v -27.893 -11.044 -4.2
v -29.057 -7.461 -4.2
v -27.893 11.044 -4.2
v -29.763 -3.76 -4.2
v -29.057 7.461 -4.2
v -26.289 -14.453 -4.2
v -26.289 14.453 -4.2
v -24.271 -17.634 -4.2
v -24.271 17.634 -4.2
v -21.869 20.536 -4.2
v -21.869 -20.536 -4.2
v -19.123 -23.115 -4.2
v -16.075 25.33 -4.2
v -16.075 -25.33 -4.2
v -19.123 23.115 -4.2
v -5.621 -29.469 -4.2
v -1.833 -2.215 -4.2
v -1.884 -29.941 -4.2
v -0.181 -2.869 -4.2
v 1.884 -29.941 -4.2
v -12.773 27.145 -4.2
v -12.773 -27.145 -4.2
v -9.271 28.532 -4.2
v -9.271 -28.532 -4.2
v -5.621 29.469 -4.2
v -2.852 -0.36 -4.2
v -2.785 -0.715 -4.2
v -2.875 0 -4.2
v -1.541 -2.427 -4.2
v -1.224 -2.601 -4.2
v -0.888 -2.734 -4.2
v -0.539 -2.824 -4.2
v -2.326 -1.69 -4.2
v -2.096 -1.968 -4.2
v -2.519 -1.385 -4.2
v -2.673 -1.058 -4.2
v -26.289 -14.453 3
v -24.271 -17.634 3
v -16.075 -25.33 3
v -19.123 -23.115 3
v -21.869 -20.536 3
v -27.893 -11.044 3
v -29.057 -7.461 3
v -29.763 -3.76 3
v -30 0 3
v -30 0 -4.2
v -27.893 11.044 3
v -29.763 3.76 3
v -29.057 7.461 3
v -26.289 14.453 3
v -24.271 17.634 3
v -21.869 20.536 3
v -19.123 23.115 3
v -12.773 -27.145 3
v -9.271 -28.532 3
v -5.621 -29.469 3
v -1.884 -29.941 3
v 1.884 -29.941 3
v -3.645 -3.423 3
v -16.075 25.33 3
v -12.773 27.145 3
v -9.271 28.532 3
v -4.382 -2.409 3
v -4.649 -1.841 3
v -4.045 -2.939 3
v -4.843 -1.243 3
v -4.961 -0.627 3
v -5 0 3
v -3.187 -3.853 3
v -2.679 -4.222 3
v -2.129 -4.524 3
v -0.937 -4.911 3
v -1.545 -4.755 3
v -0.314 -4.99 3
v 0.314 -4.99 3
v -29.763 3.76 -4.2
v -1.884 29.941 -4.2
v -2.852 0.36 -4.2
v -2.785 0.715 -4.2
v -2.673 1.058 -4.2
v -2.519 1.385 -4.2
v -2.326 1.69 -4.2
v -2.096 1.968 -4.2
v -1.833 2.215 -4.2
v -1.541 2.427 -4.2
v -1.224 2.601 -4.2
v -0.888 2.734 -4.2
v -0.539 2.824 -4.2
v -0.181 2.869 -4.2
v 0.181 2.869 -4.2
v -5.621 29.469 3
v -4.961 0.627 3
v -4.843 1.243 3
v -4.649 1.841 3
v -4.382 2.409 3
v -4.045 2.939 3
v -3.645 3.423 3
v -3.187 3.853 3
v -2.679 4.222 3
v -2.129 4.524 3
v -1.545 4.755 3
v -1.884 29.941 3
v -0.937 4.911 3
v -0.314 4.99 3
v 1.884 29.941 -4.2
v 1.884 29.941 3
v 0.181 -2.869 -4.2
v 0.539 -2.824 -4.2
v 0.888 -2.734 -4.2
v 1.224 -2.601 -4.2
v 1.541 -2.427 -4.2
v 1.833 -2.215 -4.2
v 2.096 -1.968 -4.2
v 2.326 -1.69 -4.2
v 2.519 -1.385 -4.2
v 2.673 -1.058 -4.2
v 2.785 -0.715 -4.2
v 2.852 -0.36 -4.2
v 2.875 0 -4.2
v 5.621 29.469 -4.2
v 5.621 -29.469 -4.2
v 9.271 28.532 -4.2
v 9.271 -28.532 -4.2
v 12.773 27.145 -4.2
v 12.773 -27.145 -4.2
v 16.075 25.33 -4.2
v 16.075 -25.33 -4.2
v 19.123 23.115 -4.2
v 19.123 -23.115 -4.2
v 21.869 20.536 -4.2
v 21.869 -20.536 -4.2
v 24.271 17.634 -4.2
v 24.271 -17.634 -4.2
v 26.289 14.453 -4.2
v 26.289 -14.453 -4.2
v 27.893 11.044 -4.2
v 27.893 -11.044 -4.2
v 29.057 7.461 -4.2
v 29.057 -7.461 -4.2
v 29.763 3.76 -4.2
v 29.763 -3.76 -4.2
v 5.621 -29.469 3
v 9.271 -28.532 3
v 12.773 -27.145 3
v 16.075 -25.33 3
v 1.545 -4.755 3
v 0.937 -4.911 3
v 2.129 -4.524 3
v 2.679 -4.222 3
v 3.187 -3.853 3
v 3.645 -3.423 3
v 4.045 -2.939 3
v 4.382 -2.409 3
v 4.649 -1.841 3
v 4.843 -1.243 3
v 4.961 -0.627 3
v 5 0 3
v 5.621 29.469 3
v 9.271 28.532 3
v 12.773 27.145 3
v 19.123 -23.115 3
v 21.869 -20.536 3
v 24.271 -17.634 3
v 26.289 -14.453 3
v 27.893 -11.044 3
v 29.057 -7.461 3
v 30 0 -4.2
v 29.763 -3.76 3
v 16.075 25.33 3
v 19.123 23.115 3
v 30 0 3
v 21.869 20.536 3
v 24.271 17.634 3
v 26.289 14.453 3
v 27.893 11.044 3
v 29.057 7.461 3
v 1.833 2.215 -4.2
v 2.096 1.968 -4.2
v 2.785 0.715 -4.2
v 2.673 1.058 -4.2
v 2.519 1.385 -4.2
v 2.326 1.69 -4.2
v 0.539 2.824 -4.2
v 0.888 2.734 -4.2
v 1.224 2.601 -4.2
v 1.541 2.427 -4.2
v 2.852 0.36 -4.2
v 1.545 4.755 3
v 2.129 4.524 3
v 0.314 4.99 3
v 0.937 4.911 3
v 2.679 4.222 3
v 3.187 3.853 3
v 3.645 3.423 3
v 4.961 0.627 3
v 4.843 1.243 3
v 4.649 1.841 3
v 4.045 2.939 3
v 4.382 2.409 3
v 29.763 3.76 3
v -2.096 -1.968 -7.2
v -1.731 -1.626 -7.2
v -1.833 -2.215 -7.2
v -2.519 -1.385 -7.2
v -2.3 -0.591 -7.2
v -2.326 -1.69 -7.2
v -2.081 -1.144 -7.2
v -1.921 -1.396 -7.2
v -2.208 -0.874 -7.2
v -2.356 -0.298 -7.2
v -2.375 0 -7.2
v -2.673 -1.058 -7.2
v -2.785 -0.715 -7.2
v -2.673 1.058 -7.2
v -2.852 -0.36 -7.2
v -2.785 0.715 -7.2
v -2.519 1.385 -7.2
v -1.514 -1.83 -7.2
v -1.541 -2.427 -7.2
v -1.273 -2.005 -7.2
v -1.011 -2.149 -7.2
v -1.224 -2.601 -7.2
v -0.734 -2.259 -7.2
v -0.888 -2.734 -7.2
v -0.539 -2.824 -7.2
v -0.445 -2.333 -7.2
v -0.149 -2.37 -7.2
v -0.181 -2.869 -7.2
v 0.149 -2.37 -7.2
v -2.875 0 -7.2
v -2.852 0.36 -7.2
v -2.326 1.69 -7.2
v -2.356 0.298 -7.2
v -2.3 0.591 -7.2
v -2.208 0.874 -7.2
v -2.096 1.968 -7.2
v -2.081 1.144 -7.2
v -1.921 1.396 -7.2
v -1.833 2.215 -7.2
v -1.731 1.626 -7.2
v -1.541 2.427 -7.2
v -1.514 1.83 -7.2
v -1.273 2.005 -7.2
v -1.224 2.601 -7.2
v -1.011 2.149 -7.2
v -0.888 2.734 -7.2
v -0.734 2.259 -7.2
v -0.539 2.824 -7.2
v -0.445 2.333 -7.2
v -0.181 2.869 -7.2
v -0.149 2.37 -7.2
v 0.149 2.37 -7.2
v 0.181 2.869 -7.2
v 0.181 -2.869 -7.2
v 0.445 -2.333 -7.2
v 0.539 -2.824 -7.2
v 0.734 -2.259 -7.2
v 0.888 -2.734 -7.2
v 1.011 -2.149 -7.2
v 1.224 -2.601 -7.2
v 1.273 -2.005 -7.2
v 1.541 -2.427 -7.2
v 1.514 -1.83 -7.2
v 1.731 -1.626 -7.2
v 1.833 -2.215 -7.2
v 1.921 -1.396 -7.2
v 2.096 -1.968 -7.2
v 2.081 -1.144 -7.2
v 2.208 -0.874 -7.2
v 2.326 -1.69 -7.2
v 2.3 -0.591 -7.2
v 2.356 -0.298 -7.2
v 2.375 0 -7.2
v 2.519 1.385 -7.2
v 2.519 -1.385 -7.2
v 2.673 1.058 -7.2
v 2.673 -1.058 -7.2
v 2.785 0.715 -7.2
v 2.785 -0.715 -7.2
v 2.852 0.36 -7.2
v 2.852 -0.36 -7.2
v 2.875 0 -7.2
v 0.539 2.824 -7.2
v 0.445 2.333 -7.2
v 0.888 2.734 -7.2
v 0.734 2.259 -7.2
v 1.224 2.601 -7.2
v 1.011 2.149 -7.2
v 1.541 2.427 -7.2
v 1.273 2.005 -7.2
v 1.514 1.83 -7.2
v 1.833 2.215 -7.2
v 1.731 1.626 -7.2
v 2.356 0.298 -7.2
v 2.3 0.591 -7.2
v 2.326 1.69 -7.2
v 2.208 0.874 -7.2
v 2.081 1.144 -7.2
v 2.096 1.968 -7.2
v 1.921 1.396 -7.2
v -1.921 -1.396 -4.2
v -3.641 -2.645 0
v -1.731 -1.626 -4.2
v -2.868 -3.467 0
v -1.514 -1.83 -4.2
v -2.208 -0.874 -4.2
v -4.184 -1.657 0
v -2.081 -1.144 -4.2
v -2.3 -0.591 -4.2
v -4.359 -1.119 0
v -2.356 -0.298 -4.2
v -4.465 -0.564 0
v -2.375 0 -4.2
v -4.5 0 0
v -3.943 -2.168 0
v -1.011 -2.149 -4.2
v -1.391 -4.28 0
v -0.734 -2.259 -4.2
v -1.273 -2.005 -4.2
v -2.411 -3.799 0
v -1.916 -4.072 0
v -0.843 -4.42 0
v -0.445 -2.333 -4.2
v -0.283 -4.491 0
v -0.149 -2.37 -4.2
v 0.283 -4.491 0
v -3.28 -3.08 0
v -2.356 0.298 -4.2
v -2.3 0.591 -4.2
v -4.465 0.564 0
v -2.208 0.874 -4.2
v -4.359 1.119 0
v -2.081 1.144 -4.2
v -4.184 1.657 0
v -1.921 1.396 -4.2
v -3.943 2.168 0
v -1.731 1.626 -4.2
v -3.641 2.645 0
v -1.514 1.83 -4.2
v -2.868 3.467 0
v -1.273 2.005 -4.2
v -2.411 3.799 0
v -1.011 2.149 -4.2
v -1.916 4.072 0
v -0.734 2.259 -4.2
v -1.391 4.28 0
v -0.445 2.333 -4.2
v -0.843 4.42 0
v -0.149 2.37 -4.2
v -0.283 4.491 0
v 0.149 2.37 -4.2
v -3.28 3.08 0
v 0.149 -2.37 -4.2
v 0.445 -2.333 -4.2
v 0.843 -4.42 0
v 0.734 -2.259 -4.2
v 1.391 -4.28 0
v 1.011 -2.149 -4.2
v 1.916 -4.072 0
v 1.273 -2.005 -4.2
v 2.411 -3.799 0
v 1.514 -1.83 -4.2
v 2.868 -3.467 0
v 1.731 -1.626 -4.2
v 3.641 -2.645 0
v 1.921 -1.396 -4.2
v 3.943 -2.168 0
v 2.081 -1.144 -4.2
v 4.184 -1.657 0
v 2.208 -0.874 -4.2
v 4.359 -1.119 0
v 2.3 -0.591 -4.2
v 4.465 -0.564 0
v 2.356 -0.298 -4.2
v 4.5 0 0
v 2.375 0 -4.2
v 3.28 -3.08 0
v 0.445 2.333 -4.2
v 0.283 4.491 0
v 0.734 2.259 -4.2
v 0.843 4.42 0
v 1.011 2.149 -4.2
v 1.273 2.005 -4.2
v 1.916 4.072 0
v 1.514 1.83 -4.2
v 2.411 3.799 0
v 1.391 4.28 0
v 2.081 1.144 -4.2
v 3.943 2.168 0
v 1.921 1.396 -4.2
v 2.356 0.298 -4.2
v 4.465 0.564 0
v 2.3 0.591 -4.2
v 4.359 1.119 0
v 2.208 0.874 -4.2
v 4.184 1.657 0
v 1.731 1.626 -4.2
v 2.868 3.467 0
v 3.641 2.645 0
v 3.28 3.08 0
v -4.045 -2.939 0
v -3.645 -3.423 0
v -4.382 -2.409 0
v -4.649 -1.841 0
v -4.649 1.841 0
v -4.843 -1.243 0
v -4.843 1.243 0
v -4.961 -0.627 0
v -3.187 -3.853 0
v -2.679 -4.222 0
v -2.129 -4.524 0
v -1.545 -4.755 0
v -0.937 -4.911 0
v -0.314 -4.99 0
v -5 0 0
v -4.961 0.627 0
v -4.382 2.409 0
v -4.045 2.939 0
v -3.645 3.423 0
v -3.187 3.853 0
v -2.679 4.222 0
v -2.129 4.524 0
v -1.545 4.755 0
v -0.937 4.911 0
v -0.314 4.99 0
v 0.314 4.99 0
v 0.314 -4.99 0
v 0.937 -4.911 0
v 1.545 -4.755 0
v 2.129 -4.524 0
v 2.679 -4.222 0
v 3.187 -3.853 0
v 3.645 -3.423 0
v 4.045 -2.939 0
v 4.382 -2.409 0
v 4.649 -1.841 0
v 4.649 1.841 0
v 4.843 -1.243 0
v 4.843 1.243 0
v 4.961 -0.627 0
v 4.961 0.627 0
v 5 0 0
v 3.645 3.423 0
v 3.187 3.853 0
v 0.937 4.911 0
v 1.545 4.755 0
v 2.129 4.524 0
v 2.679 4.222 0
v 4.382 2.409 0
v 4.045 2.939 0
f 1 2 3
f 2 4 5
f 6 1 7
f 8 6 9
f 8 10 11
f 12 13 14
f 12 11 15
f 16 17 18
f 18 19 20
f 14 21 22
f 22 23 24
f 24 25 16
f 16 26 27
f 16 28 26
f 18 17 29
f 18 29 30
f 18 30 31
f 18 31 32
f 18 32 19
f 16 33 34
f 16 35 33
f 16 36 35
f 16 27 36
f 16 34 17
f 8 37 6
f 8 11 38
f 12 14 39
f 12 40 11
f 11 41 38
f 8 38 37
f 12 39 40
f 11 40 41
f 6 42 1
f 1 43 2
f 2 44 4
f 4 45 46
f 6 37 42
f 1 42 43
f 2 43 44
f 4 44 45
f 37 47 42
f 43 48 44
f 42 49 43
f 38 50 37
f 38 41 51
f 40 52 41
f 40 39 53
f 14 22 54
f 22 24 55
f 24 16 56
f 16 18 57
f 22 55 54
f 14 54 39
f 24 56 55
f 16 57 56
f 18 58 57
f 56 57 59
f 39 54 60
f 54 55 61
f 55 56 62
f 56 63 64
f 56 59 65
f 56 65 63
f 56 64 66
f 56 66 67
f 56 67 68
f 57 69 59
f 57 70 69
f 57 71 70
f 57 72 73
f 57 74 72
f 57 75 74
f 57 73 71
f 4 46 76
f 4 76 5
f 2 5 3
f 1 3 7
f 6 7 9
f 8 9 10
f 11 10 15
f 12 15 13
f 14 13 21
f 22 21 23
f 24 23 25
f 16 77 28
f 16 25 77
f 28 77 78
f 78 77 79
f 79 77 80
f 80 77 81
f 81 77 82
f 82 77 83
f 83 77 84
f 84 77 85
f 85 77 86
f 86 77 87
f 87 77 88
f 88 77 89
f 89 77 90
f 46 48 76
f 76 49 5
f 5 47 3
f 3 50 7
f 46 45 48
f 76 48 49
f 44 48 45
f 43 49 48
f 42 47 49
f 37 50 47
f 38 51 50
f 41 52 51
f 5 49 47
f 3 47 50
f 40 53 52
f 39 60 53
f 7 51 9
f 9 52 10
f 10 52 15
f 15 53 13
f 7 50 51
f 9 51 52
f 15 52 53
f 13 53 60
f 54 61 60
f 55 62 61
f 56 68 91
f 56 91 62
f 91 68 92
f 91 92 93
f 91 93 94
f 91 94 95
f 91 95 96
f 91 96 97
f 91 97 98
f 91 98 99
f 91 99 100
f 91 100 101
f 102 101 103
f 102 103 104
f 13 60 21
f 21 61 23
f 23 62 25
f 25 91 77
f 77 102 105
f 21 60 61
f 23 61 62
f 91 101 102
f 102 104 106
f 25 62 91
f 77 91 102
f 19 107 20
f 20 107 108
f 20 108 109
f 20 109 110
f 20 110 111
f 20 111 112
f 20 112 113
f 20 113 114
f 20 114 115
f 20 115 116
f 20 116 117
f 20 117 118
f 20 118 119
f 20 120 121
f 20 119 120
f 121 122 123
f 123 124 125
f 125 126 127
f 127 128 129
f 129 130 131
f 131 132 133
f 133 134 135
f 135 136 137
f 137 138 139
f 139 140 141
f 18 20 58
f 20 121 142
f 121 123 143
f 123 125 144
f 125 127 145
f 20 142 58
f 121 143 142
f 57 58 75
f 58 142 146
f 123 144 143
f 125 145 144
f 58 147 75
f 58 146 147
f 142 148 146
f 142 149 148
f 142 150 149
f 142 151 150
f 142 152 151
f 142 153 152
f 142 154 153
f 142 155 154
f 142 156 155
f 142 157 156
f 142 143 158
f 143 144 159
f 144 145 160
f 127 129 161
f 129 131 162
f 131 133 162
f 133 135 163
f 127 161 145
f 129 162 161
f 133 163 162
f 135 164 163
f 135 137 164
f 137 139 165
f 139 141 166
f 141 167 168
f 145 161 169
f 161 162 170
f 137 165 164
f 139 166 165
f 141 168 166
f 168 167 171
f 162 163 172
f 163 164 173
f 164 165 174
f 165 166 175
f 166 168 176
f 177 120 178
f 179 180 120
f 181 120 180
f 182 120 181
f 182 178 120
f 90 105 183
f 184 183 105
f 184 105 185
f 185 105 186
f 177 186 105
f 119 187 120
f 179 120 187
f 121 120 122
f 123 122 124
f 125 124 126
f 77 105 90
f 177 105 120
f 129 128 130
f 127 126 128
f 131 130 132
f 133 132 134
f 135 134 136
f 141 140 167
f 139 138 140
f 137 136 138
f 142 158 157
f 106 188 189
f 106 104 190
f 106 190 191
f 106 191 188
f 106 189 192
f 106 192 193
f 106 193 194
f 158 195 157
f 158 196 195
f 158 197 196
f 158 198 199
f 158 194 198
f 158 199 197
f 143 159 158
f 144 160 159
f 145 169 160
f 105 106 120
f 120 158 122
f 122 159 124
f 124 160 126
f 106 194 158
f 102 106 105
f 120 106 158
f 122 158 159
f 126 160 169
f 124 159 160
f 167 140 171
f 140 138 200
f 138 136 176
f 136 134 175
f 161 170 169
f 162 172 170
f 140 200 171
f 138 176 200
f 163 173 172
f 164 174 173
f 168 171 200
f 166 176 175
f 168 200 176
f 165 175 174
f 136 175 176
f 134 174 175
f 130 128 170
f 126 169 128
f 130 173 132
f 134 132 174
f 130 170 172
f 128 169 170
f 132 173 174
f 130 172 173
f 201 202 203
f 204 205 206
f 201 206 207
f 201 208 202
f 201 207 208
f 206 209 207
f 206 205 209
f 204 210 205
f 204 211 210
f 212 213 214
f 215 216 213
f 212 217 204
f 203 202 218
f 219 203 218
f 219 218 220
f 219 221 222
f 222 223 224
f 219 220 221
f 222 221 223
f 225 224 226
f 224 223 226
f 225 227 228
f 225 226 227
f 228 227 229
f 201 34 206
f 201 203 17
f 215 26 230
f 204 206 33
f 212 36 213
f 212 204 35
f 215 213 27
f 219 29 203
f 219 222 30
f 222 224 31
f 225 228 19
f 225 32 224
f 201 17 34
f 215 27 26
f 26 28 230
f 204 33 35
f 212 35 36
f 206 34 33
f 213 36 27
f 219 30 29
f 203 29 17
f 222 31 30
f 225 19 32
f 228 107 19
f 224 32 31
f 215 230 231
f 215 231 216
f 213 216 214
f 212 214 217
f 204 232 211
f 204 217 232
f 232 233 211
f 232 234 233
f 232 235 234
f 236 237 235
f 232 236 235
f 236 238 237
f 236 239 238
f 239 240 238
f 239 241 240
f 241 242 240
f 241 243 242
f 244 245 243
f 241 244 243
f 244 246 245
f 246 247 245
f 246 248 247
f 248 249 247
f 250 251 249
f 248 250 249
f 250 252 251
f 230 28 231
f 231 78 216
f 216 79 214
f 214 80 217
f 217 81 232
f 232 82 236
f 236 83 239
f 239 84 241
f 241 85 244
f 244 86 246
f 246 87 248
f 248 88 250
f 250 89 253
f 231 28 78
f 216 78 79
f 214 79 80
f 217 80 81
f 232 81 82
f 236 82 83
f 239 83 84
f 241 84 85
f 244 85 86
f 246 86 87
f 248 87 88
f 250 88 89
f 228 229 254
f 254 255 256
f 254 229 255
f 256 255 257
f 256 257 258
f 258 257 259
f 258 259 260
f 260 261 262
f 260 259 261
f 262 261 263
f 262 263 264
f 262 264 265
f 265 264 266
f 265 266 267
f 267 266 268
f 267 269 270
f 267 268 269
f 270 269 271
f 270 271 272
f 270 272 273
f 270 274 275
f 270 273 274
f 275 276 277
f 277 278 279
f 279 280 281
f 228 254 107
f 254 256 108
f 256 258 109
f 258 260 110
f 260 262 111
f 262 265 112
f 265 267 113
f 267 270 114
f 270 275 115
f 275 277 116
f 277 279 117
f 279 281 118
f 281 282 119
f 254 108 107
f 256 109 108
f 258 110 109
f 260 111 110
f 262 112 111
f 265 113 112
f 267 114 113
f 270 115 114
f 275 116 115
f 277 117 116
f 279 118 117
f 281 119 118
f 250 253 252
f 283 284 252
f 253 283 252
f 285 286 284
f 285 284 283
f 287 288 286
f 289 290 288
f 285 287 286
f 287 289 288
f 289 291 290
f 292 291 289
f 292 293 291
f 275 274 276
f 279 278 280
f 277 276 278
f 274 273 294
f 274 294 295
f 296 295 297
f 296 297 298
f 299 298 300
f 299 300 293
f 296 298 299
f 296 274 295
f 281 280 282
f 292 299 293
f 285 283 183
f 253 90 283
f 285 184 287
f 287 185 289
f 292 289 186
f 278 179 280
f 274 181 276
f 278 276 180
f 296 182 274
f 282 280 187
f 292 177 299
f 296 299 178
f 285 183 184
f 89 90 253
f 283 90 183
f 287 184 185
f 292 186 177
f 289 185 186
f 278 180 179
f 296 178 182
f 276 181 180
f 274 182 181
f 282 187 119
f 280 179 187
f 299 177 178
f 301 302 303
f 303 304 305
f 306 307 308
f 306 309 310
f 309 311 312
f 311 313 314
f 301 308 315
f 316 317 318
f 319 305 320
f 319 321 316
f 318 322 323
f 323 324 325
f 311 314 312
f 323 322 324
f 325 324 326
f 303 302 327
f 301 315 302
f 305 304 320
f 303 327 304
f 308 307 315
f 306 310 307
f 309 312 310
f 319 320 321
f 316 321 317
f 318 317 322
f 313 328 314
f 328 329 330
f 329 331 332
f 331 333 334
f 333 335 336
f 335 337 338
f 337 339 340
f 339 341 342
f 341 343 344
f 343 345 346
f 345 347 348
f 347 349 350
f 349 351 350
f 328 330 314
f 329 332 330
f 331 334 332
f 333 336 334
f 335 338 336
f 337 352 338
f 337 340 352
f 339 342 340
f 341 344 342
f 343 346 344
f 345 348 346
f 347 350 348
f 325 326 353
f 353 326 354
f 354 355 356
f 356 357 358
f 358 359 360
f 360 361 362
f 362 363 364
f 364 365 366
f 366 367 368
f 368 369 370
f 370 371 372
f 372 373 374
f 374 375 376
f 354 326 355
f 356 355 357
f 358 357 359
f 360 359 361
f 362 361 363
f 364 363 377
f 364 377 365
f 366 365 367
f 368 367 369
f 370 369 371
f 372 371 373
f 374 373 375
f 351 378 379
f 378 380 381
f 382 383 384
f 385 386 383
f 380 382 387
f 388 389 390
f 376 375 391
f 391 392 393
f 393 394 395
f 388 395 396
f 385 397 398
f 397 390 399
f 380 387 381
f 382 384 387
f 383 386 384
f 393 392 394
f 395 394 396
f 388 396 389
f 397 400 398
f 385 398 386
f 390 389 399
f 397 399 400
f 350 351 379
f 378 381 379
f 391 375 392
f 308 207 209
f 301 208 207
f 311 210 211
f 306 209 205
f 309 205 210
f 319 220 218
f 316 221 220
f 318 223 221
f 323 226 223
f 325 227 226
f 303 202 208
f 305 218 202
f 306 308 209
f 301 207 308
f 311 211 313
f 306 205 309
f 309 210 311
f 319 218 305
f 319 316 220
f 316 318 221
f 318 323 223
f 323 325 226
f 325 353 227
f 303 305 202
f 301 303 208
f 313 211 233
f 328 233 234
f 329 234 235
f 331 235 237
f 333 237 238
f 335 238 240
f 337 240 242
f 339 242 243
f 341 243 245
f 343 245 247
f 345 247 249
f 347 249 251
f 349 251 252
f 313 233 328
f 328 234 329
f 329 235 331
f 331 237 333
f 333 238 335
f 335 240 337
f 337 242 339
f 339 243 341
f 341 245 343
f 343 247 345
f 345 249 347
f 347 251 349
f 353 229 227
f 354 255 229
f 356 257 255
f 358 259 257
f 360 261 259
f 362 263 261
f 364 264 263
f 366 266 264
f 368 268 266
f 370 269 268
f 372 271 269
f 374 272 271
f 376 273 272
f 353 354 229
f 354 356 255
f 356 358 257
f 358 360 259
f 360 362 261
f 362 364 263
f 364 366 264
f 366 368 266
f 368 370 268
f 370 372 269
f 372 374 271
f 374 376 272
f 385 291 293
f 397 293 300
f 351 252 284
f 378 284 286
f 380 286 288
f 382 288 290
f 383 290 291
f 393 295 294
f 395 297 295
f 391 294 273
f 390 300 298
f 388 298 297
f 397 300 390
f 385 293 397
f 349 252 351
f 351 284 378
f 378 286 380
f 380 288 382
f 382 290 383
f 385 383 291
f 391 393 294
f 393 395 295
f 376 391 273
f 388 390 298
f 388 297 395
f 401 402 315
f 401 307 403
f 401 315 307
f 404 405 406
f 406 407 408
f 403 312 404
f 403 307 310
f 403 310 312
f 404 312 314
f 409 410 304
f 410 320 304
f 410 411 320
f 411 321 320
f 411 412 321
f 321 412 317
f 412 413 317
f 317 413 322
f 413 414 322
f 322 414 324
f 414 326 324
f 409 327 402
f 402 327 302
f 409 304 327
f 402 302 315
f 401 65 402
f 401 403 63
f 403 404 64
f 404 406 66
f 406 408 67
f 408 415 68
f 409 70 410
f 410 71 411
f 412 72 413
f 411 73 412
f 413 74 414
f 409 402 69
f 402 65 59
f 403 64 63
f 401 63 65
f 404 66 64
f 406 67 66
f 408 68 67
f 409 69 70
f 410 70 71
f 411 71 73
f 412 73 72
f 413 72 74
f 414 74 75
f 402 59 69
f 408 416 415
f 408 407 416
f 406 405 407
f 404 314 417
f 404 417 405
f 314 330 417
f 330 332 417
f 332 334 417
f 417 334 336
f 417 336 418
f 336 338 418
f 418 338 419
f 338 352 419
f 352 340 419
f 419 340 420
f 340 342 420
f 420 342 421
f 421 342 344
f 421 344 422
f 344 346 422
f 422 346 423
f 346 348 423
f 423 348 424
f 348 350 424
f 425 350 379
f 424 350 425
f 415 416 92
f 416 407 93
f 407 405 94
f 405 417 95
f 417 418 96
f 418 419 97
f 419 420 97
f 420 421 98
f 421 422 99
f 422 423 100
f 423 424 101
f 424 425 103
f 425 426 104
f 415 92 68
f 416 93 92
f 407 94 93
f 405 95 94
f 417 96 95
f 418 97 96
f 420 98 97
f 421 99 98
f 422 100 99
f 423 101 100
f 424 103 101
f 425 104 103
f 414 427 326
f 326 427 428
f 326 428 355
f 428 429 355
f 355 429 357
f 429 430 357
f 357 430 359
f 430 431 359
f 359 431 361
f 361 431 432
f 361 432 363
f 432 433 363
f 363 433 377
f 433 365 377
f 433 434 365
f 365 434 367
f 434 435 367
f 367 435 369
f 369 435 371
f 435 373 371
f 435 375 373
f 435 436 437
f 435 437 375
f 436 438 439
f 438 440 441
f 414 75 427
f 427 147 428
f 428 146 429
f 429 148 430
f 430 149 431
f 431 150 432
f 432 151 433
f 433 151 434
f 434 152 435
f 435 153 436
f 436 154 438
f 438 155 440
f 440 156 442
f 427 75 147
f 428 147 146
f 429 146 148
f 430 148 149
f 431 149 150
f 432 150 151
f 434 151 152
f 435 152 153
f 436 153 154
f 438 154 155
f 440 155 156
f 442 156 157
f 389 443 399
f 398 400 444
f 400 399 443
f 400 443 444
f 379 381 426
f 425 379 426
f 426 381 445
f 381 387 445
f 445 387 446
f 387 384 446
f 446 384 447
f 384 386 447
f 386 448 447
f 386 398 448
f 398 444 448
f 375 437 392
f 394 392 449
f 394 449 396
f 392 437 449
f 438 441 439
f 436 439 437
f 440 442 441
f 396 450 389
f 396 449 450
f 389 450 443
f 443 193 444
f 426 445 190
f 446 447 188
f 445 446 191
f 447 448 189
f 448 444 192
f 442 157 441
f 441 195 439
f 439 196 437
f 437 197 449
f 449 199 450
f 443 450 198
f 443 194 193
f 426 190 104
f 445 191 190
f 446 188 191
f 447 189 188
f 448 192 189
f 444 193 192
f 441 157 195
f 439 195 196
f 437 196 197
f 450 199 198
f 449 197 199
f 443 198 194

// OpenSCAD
$fn = 50;

difference() {
	union() {
		translate(v = [0, 0, -4.2]) {
			cylinder(h = 7.2, r = 30.0);
		}
		#translate(v = [0, 0, -7.2]) {
			cylinder(h = 7.2, r = 2.875);
		}
	}
	union() {
		translate(v = [0, 0, 0]) {
			rotate(a = [0, 0, 0]) {
				difference() {
					union() {
						translate(v = [0, 0, -7.2]) {
							cylinder(h = 7.2, r = 2.25);
						}
						translate(v = [0, 0, -4.2]) {
							cylinder(h = 4.2, r1 = 2.375, r2 = 4.5);
						}
						translate(v = [0, 0, -7.2]) {
							cylinder(h = 7.2, r = 2.375);
						}
						translate(v = [0, 0, -7.2]) {
							cylinder(h = 7.2, r = 2.25);
						}
					}
					union();
				}
			}
		}
		#cylinder(h = 3, r = 5.0);
	}
}
